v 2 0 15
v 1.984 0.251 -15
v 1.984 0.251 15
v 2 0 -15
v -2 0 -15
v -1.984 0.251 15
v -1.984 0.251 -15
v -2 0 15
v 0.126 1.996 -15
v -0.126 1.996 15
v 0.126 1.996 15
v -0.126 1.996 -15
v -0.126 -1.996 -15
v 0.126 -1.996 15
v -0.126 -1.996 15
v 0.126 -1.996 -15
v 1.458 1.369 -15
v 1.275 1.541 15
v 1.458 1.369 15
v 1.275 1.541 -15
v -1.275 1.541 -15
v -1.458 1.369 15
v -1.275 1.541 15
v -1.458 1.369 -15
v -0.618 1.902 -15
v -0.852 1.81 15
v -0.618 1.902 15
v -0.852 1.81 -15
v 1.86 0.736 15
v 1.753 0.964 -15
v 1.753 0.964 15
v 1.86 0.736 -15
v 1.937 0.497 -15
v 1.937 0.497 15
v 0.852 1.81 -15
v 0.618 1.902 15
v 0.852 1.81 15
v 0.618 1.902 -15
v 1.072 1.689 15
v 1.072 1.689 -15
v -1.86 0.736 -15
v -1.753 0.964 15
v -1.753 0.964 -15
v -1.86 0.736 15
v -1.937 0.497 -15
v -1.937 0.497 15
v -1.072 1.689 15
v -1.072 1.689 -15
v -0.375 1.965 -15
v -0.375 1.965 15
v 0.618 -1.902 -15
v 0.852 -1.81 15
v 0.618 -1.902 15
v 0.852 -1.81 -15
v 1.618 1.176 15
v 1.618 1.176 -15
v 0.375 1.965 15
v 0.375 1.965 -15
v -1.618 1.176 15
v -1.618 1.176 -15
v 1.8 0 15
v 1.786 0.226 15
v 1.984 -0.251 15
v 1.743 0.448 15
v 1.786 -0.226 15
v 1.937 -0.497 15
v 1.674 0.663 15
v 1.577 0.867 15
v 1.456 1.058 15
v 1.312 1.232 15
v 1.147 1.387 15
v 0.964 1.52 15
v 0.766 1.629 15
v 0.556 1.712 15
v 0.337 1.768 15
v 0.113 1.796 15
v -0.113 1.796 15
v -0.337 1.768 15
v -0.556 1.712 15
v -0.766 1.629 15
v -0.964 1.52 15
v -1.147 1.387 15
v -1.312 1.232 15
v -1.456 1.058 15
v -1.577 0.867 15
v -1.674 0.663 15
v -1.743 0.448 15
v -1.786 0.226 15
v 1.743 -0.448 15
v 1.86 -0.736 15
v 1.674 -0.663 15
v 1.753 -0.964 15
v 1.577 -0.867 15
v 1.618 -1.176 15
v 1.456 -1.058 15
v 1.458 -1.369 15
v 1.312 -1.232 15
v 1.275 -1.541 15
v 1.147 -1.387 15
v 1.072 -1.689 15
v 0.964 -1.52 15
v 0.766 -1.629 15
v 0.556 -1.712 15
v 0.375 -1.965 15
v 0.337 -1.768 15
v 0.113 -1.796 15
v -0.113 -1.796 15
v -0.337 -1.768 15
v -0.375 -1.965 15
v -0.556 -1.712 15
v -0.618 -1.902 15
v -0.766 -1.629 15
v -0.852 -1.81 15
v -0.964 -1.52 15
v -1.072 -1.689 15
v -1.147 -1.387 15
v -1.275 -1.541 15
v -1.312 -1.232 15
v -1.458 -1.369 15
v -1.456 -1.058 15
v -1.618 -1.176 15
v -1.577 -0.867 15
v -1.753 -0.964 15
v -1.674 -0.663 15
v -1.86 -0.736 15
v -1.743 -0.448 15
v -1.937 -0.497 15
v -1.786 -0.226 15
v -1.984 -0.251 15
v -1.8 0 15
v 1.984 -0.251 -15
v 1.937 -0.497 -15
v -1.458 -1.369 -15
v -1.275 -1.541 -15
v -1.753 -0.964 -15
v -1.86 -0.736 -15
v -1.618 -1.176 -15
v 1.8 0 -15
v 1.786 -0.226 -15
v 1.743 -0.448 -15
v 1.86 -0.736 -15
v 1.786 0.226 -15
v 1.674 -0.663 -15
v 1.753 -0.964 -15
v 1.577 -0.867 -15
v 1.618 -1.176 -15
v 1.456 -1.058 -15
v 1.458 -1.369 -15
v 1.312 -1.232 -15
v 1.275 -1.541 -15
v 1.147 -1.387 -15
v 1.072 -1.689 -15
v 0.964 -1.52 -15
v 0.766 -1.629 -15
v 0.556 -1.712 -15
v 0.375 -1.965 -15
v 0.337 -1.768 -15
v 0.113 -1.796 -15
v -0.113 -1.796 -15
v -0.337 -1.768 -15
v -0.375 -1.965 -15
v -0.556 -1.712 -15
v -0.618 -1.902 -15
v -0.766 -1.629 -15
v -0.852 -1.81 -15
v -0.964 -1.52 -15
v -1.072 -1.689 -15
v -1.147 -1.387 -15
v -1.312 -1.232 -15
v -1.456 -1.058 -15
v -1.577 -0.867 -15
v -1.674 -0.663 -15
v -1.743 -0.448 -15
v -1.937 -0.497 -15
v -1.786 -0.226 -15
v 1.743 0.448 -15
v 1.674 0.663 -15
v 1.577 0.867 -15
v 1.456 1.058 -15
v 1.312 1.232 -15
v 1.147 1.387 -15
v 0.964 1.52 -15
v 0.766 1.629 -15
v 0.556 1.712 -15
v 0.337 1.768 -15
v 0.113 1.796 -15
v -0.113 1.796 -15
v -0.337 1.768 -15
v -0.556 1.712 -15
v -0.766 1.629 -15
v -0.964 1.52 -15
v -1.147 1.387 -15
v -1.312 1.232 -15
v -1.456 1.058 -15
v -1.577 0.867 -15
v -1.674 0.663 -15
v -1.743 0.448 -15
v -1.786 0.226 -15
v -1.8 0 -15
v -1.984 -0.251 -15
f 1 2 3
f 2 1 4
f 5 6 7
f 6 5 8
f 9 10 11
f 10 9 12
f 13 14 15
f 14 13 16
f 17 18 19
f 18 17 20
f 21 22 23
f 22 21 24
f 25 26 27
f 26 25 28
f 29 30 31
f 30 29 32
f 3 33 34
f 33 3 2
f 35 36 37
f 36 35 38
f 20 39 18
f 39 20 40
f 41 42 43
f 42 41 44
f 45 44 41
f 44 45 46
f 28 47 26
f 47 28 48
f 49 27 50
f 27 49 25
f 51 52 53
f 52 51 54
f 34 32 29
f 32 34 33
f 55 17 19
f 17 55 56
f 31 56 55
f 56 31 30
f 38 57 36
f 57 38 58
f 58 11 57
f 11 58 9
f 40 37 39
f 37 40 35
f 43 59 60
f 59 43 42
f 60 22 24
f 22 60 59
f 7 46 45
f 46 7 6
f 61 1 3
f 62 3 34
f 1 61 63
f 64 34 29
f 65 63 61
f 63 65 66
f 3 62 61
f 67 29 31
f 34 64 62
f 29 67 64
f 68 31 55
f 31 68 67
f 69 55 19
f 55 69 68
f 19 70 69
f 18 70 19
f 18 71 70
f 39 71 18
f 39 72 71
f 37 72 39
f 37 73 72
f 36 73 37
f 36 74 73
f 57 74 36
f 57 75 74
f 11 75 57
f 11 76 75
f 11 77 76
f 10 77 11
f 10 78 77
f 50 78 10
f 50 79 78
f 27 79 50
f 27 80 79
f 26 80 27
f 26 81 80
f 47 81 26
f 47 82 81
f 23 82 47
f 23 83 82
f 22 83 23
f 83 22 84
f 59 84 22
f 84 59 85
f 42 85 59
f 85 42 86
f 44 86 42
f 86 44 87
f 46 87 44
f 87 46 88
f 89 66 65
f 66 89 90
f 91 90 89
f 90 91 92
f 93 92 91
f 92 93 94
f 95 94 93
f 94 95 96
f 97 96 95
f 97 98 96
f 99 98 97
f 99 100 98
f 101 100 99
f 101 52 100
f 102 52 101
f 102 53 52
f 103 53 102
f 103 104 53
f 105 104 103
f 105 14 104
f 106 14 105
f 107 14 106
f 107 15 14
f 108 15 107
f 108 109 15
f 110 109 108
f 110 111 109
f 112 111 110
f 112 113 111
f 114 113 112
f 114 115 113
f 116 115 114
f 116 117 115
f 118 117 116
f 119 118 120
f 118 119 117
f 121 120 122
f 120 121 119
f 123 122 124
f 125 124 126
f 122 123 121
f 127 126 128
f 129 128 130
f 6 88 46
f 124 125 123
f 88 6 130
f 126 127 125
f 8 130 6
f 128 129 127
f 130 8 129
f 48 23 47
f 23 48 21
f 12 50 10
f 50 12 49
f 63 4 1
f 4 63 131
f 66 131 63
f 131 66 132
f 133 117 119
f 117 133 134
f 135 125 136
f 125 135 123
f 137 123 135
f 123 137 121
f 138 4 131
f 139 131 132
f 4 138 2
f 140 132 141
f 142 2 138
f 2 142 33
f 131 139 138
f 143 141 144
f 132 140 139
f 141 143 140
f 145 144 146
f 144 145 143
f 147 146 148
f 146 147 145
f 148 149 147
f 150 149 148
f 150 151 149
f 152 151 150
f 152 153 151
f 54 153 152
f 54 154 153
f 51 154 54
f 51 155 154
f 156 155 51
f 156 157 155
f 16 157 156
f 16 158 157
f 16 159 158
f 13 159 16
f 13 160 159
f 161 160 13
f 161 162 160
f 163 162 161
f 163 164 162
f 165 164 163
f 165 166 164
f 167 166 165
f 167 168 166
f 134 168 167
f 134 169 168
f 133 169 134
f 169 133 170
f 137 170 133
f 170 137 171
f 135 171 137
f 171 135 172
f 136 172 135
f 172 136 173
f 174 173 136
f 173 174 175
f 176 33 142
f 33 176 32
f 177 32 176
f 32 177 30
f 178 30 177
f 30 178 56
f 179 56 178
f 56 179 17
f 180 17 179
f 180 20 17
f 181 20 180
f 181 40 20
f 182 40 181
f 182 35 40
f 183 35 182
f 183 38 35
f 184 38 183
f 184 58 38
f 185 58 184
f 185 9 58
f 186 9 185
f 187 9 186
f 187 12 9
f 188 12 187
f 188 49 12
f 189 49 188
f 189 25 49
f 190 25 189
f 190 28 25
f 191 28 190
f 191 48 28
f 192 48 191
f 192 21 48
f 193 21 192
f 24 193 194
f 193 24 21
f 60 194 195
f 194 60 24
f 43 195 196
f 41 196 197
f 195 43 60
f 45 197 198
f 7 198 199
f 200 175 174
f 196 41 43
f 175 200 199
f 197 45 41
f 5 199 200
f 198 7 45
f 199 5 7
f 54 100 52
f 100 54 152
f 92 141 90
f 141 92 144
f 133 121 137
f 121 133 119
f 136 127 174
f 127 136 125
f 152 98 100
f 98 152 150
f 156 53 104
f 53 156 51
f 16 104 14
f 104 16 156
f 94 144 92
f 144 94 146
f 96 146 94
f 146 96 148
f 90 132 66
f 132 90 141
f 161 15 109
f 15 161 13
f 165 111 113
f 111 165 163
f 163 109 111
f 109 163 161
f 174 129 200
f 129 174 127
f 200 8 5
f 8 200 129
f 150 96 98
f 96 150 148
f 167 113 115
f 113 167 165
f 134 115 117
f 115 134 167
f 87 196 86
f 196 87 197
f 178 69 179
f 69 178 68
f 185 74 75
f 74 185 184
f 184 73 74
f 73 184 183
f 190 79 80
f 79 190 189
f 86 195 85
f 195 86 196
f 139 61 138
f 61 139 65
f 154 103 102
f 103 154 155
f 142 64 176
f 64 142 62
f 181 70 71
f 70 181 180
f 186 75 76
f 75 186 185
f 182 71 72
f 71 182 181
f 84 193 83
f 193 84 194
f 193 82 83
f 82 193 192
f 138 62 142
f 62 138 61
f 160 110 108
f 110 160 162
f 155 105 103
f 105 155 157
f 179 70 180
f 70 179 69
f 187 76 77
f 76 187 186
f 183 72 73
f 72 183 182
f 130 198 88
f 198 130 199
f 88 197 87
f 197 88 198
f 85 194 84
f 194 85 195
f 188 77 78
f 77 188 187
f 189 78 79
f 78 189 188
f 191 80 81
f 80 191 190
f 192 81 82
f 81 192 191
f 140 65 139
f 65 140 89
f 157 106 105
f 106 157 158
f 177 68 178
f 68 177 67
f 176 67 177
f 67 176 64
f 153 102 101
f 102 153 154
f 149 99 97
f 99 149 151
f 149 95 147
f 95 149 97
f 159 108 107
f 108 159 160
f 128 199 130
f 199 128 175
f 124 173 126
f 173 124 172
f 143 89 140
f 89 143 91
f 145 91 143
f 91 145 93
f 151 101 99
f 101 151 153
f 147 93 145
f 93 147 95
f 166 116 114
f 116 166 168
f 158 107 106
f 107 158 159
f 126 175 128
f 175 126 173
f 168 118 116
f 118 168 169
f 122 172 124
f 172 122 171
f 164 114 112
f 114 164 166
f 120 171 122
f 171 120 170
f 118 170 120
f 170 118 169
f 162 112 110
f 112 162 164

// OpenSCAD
$fn = 50;


difference() {
	union() {
		translate(v = [0, 0, -15.0000000000]) {
			cylinder(h = 30, r = 2.0000000000);
		}
	}
	union() {
		translate(v = [0, 0, -100.0000000000]) {
			cylinder(h = 200, r = 1.8000000000);
		}
	}
}
